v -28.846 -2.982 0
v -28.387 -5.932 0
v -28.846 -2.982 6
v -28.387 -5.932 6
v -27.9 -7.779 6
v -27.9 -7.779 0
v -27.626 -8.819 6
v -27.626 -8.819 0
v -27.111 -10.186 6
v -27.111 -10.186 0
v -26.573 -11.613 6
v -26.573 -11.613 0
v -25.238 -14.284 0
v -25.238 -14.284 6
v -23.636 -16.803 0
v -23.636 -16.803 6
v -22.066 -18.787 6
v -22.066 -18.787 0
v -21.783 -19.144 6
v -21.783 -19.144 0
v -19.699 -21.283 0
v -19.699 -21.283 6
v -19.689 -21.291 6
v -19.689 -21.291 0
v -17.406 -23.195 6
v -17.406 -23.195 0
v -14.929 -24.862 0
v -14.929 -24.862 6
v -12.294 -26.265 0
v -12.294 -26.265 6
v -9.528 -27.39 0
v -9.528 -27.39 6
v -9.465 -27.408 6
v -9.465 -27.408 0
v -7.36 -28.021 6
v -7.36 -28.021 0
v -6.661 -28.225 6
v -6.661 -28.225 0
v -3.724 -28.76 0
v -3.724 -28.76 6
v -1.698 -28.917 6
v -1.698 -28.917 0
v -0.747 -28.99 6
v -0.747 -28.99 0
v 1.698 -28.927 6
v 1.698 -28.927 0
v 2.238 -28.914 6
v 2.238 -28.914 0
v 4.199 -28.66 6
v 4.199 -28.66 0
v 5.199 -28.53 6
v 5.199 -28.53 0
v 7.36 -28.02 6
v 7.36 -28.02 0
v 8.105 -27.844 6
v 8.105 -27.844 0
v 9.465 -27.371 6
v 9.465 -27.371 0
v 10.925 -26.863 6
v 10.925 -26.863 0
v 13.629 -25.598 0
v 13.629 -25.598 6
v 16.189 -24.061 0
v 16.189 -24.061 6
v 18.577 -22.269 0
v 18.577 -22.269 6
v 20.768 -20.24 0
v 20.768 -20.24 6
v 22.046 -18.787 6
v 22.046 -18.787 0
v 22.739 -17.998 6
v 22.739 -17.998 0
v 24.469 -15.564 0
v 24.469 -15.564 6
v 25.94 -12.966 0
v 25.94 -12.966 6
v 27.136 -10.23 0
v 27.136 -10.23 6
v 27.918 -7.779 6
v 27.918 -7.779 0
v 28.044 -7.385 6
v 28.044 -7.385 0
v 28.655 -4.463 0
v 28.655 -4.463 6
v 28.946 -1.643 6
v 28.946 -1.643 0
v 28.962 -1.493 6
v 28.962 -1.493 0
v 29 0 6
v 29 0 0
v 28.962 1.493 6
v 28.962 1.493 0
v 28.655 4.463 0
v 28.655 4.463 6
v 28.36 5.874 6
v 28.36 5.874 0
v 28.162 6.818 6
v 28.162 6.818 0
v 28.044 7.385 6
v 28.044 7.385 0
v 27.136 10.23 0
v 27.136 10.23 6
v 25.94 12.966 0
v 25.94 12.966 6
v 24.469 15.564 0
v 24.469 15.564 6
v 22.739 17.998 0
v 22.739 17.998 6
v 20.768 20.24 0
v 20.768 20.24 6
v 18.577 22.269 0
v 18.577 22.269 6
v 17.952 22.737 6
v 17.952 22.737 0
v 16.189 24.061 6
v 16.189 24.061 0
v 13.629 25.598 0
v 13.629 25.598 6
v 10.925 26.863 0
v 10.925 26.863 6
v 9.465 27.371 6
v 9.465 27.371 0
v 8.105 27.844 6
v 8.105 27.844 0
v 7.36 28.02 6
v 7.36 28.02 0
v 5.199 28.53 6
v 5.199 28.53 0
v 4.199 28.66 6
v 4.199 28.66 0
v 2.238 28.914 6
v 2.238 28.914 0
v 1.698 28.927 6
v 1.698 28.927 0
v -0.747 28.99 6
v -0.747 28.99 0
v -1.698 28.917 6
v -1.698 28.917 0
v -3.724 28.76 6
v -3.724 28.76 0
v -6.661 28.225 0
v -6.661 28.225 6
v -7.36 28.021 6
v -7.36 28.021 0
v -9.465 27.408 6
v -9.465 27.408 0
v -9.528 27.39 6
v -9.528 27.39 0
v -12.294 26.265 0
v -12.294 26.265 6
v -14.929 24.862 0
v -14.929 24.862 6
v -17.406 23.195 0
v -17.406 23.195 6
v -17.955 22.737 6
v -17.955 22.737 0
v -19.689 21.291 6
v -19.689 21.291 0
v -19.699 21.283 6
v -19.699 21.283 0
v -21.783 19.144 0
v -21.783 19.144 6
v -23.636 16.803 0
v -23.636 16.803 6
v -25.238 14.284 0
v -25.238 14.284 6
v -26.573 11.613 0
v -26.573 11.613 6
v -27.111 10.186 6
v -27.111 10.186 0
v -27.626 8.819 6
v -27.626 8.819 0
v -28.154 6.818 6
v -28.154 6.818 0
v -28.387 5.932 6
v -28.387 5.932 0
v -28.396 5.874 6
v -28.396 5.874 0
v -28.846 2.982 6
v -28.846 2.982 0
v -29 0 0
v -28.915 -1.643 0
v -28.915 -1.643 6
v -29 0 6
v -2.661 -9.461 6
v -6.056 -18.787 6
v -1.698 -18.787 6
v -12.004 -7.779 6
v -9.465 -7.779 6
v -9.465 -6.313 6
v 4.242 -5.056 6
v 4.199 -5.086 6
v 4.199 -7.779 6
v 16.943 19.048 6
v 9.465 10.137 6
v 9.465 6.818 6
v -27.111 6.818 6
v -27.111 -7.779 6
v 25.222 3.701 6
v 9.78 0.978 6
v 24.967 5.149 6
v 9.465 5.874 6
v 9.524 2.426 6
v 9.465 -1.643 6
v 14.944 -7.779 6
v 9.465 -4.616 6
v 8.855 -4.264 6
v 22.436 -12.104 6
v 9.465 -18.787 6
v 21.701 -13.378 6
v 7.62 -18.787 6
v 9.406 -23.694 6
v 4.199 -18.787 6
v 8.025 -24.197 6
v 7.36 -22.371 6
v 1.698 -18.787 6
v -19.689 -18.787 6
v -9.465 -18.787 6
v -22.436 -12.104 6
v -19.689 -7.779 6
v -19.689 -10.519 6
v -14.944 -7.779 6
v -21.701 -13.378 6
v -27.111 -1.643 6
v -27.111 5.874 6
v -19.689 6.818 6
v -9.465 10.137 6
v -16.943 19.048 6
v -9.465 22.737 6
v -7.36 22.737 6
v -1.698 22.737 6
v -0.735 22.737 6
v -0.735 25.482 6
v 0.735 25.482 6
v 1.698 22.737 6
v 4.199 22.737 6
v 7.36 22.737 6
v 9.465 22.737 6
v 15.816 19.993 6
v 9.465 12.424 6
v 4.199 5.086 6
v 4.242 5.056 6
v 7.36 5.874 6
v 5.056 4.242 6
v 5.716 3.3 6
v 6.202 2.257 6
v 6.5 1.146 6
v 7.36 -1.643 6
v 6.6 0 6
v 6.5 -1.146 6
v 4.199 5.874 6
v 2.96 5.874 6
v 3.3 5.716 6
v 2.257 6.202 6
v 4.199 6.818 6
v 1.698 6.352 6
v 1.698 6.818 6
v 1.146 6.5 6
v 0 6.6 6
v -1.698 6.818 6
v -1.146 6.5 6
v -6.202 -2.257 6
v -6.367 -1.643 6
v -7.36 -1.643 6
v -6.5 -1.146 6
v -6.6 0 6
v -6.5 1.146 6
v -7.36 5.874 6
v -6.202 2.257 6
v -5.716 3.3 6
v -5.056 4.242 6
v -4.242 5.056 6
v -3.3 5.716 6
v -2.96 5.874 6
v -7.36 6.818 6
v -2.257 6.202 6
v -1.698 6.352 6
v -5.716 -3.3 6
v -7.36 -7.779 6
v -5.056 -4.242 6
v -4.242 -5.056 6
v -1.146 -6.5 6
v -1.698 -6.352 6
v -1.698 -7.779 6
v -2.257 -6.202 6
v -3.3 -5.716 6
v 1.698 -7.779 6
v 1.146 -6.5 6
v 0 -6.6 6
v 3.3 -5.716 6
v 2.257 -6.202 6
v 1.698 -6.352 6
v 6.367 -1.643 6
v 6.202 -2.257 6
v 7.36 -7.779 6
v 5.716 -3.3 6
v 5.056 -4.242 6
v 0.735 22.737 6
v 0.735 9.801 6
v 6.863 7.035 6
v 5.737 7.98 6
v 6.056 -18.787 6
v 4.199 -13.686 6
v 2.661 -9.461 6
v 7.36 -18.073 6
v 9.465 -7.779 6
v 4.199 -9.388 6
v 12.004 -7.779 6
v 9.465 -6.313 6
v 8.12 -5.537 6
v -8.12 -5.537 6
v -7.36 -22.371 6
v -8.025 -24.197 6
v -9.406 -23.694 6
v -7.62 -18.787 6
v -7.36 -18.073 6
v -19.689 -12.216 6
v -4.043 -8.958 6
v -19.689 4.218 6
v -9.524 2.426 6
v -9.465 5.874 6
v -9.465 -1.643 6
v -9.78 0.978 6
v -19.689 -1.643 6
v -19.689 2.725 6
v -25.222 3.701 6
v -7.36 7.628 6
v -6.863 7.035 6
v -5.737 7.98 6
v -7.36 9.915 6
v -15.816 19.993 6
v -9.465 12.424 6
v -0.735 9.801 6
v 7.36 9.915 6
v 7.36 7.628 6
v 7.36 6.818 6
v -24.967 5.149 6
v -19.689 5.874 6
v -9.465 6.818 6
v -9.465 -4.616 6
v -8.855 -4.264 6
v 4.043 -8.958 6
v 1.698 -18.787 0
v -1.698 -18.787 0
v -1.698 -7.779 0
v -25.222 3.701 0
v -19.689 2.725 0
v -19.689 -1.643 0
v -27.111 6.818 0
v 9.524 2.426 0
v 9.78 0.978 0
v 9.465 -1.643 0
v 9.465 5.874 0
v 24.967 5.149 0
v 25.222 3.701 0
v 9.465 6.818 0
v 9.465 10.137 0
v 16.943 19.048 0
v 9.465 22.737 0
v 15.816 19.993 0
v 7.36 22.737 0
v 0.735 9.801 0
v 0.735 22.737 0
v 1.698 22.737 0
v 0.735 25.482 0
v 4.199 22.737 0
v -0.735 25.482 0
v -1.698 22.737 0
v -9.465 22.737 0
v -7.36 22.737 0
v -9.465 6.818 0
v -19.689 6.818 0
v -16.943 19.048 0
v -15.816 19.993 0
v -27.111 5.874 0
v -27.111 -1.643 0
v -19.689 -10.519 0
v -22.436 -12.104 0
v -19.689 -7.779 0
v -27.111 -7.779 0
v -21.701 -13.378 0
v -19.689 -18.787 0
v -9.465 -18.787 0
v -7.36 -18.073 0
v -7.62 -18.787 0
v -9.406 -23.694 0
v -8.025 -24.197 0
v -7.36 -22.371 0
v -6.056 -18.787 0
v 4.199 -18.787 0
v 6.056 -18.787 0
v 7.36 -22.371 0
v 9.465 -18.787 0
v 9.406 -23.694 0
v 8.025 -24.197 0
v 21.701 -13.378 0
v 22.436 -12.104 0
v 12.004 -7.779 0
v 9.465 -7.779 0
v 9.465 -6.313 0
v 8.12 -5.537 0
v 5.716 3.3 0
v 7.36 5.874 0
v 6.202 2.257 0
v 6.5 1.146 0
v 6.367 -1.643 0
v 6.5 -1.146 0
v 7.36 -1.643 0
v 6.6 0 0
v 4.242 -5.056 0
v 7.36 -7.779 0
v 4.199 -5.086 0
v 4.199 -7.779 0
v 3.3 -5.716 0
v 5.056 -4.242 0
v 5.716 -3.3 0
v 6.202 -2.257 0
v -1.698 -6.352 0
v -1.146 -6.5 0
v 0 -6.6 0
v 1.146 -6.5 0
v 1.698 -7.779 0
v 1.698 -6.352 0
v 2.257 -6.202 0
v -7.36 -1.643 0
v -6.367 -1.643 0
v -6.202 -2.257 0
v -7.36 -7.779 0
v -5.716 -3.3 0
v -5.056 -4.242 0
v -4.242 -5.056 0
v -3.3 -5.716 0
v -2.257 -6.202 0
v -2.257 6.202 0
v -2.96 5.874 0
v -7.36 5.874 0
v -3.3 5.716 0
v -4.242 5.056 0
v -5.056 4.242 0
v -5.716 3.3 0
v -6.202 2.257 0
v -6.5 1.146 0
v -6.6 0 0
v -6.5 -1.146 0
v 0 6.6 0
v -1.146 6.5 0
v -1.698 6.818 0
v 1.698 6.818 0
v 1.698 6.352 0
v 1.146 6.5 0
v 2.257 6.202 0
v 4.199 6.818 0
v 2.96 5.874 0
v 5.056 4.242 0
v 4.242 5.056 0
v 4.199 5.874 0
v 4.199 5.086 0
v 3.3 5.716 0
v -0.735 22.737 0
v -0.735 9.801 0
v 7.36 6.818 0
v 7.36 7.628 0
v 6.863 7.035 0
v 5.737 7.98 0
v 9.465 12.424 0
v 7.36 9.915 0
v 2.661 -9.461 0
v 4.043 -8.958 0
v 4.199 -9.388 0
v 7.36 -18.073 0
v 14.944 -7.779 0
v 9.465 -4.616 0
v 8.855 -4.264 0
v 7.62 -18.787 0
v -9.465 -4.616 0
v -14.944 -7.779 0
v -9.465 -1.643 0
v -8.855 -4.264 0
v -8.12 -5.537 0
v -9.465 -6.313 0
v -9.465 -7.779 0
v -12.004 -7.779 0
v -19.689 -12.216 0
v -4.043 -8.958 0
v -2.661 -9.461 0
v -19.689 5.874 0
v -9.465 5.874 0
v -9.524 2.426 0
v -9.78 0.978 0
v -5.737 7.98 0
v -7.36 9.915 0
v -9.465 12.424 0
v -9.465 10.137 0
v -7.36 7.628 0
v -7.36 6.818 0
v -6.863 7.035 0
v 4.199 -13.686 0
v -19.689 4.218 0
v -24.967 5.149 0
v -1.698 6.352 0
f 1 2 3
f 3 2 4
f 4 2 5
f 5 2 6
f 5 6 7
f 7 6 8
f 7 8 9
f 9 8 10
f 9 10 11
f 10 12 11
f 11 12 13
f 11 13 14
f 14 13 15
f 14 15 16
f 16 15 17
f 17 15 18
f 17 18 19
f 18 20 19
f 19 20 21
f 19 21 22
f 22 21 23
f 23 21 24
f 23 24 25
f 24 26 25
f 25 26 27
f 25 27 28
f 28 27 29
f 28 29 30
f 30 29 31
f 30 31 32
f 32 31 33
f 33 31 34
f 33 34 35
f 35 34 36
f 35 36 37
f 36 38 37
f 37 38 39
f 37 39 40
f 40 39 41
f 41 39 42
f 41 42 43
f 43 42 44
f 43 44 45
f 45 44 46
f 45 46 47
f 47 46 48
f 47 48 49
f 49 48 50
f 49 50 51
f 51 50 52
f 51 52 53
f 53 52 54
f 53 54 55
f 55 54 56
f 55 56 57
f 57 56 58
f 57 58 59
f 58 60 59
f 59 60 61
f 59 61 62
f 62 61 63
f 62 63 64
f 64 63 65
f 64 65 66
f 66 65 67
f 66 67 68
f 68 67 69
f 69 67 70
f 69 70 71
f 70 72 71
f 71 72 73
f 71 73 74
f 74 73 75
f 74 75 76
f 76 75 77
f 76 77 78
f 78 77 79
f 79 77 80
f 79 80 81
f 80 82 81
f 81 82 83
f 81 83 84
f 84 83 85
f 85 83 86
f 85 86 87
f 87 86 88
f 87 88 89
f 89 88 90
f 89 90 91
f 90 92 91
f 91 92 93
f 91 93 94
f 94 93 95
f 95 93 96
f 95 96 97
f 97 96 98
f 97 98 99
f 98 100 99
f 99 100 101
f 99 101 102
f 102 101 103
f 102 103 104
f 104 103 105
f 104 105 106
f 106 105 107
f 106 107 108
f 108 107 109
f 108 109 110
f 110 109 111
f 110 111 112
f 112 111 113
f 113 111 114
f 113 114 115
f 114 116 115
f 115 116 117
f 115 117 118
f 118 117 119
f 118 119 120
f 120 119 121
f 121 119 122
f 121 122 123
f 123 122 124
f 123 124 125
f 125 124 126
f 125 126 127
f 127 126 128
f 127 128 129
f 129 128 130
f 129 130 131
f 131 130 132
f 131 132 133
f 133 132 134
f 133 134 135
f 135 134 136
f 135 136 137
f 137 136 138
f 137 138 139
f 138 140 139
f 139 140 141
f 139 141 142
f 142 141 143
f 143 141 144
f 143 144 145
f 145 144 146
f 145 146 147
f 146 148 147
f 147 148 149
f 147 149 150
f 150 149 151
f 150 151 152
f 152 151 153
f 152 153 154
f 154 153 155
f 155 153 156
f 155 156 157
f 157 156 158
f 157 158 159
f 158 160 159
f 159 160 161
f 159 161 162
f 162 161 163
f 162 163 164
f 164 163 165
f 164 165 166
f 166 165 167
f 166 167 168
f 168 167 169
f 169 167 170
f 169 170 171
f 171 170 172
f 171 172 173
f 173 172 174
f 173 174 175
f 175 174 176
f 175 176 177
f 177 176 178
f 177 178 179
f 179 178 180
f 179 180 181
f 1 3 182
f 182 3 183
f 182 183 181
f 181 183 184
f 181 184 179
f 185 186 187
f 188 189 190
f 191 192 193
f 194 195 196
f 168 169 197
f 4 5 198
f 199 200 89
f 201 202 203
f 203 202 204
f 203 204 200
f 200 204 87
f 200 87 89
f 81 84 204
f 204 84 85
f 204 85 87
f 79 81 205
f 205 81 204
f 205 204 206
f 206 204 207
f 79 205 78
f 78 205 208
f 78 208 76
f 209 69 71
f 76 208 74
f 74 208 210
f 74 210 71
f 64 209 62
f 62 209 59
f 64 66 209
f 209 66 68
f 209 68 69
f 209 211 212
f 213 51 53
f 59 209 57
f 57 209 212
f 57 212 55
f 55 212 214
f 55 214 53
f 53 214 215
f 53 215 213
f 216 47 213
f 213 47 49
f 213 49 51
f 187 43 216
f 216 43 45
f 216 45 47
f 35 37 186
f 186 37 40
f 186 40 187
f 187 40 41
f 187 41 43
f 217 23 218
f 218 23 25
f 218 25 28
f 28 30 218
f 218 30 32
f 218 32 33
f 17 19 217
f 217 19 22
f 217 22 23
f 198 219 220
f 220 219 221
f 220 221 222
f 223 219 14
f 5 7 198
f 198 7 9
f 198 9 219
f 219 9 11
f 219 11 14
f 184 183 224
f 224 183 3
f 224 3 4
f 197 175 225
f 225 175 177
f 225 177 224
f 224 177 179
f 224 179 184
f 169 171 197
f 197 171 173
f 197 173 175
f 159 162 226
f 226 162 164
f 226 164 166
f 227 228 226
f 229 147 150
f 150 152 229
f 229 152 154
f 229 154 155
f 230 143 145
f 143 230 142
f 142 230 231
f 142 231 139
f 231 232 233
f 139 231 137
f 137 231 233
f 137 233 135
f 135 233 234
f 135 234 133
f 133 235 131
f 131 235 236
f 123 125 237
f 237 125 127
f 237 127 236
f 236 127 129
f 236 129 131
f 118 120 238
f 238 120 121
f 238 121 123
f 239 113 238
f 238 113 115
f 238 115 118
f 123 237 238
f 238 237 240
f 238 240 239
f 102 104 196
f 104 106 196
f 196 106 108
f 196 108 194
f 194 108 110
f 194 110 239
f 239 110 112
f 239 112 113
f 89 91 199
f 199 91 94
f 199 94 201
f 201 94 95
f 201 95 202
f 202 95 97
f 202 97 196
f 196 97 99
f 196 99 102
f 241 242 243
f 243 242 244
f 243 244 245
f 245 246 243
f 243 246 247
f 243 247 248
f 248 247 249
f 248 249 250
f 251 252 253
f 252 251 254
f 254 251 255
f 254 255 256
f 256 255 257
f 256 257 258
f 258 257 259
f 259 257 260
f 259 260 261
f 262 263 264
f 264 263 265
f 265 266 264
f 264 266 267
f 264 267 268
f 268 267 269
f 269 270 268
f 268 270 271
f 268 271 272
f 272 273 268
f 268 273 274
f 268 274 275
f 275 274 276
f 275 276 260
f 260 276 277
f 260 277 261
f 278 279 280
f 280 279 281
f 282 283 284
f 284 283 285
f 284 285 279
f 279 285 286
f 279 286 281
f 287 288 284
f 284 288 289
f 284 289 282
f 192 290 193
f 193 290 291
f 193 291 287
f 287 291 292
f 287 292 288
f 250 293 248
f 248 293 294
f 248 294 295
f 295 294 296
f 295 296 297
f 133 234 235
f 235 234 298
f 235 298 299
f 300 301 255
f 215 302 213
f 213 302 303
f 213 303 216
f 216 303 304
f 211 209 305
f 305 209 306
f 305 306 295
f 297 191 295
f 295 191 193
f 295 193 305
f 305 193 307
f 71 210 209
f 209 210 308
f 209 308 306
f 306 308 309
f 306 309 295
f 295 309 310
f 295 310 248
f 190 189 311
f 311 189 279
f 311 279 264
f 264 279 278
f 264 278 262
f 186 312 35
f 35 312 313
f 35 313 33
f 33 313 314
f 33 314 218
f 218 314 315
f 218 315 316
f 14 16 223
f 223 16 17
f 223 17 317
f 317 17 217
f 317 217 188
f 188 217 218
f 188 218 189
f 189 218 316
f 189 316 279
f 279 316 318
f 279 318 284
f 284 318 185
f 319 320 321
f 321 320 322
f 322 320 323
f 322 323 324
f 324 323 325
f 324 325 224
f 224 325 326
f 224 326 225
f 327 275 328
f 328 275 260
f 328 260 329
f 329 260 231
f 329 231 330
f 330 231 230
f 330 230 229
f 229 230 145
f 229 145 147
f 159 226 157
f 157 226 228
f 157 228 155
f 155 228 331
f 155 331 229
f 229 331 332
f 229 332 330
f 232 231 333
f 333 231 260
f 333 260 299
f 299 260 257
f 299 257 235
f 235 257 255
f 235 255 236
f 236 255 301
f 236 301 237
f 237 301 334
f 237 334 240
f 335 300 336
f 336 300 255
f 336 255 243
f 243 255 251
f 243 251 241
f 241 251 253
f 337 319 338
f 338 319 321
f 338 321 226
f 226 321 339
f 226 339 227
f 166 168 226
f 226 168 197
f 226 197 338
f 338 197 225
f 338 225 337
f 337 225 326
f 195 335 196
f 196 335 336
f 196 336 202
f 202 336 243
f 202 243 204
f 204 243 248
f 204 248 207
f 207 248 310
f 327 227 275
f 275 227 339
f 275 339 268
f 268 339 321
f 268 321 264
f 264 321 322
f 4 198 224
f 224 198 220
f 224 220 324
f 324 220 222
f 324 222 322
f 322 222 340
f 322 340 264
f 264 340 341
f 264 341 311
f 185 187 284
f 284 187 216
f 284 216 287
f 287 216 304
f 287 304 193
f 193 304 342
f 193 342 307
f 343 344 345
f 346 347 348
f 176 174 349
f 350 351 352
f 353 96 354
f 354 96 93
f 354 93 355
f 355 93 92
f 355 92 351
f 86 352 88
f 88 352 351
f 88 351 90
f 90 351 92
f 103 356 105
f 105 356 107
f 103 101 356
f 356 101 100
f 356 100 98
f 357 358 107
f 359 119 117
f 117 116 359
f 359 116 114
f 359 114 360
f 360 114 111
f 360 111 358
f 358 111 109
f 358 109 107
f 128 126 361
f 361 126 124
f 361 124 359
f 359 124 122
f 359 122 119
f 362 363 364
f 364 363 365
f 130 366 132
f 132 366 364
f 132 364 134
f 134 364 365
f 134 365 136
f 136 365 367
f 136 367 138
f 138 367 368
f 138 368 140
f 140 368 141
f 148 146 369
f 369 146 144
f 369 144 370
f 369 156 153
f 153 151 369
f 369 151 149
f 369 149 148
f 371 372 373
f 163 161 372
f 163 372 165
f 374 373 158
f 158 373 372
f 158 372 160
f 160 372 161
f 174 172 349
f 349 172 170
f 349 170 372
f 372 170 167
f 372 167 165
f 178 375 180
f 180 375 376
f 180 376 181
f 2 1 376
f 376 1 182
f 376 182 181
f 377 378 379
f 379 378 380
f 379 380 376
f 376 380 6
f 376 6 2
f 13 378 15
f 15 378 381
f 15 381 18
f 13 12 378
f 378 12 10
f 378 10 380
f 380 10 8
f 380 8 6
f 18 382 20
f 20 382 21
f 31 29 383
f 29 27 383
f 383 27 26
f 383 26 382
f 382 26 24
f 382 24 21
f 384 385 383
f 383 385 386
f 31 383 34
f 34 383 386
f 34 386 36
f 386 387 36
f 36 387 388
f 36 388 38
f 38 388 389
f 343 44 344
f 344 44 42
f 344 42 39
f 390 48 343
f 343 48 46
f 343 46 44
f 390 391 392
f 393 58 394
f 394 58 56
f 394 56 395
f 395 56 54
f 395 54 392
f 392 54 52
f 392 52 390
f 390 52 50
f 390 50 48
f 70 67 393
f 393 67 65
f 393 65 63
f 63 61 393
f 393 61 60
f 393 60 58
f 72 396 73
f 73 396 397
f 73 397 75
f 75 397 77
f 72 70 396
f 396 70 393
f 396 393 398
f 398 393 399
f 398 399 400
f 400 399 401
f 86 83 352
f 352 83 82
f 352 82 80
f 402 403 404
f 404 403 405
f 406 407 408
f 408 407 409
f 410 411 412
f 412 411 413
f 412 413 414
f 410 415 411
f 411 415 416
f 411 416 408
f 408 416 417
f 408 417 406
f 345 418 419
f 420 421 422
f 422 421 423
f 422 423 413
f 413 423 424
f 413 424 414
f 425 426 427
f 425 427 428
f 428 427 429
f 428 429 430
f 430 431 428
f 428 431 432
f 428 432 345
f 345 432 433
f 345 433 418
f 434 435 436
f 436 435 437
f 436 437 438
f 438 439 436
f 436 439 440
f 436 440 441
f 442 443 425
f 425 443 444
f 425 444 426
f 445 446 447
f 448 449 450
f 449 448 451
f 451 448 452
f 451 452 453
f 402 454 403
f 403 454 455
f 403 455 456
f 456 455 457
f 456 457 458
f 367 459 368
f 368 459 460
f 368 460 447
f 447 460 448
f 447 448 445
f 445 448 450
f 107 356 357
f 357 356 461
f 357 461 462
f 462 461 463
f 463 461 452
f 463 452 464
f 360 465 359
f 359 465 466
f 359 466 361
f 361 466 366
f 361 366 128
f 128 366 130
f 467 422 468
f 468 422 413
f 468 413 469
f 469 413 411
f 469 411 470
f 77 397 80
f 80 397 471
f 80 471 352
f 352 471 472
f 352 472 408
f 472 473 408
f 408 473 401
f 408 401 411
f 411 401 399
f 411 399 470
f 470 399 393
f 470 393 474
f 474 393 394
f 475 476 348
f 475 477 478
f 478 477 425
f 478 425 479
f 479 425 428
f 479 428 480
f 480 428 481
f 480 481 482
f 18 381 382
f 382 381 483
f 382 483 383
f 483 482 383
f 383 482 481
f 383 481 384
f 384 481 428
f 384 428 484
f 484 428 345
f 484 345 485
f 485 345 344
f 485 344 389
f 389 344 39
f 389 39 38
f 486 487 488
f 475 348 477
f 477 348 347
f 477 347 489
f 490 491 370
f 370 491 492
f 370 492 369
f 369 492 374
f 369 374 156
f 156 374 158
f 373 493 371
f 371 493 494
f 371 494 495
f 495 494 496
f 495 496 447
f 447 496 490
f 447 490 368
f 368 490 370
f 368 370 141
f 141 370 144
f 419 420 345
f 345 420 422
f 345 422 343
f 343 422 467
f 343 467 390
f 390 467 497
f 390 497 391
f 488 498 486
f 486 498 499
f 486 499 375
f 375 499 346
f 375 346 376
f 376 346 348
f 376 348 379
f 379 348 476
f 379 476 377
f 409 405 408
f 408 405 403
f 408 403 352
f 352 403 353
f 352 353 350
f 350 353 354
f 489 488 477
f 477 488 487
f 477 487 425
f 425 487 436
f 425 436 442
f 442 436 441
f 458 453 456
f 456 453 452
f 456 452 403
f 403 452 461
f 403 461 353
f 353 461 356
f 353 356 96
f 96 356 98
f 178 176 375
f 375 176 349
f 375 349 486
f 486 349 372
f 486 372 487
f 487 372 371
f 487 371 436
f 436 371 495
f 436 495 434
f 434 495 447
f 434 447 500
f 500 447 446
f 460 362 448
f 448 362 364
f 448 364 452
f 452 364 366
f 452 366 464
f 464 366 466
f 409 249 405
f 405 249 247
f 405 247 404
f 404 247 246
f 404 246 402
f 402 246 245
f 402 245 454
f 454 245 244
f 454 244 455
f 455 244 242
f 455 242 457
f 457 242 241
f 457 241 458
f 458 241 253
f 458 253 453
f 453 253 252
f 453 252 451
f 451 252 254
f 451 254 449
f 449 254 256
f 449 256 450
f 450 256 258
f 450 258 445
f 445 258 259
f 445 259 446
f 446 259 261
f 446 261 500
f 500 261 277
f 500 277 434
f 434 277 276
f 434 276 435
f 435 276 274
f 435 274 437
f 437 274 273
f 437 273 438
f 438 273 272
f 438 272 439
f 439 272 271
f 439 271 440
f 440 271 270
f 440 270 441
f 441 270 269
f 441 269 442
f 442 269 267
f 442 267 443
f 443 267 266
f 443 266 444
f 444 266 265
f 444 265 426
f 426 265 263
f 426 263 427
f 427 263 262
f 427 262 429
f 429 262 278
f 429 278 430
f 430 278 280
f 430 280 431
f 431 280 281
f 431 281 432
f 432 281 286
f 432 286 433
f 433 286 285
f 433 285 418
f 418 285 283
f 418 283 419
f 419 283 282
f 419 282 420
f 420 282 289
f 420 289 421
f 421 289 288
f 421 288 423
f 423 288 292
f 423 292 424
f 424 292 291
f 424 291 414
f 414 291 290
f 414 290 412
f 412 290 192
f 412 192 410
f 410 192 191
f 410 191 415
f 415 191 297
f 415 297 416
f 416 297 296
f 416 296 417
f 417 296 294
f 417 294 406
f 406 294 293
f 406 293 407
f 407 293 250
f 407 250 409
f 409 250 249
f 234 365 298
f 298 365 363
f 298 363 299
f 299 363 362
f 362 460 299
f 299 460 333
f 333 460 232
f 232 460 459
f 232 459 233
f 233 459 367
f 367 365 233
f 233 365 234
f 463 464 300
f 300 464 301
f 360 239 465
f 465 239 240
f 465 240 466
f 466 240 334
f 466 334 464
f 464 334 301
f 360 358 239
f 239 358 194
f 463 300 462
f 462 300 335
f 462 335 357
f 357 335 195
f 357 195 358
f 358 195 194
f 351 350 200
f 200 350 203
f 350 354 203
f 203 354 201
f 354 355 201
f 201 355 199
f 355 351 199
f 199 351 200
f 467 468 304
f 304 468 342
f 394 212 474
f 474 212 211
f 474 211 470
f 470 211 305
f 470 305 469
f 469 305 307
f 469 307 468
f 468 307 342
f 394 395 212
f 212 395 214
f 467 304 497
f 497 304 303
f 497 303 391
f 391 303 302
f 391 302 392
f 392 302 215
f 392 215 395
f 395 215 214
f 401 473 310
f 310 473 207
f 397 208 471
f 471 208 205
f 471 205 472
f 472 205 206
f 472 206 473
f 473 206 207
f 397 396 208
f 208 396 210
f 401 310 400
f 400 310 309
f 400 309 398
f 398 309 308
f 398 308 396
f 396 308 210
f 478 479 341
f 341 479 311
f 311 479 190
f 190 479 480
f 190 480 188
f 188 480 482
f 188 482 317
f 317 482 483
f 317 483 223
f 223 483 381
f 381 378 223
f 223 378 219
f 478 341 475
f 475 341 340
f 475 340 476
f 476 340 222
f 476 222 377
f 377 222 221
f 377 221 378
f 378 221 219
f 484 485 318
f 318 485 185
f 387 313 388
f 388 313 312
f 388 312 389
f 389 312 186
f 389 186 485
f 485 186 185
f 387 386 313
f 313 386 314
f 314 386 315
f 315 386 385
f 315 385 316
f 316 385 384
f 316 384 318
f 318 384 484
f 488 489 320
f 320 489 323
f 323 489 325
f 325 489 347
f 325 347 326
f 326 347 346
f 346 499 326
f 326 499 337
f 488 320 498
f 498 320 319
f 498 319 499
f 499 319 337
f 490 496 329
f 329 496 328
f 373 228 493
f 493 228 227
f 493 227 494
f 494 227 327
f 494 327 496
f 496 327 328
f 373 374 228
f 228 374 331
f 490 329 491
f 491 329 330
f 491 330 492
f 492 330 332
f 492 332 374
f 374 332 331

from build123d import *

# Parameters (mm, degrees)
SKETCH_1_R          = 29
EXTRUDE_1_DEPTH     = 6
SKETCH_2_R          = 6.6
CUT_EXTRUDE_1_DEPTH = 42.448763552
SKETCH_3_W          = 1.470113788
SKETCH_3_H          = 15.681213729
CUT_EXTRUDE_2_DEPTH = 42.448763552


with BuildPart() as part:
    # 草图1 → 凸台-拉伸1 (new body)
    with BuildSketch(Plane.XY):
        Circle(SKETCH_1_R)
    extrude(amount=EXTRUDE_1_DEPTH)

    # 草图2 → 切除-拉伸1 (cut, through all)
    with BuildSketch(Plane.XY.offset(6)):
        Circle(SKETCH_2_R)
    extrude(amount=-CUT_EXTRUDE_1_DEPTH, mode=Mode.SUBTRACT)

    # 草图3 → 切除-拉伸2 (cut, through all)
    with BuildSketch(Plane.XY.offset(6)):
        Polygon((15.816409823, 19.992808752), (5.736719933, 7.980302113), (6.86289243, 7.035331186), (16.94258232, 19.047837825), align=None)
        with Locations((0, 17.641365445)):
            Rectangle(SKETCH_3_W, SKETCH_3_H)
        Polygon((24.967202603, 5.148787783), (9.524221746, 2.425773595), (9.779504326, 0.97799414), (25.222485183, 3.701008327), align=None)
        Polygon((22.435563806, -12.104408212), (8.855234354, -4.263801347), (8.120177461, -5.536957234), (21.700506913, -13.377564098), align=None)
        Polygon((9.406075361, -23.693817079), (4.042784393, -8.958296253), (2.661329316, -9.461104781), (8.024620283, -24.196625607), align=None)
        Polygon((-8.024620283, -24.196625607), (-2.661329316, -9.461104781), (-4.042784393, -8.958296253), (-9.406075361, -23.693817079), align=None)
        Polygon((-21.700506913, -13.377564098), (-8.120177461, -5.536957234), (-8.855234354, -4.263801347), (-22.435563806, -12.104408212), align=None)
        Polygon((-25.222485183, 3.701008327), (-9.779504326, 0.97799414), (-9.524221746, 2.425773595), (-24.967202603, 5.148787783), align=None)
        Polygon((-16.94258232, 19.047837825), (-6.86289243, 7.035331186), (-5.736719933, 7.980302113), (-15.816409823, 19.992808752), align=None)
    extrude(amount=-CUT_EXTRUDE_2_DEPTH, mode=Mode.SUBTRACT)


solid = part.part
